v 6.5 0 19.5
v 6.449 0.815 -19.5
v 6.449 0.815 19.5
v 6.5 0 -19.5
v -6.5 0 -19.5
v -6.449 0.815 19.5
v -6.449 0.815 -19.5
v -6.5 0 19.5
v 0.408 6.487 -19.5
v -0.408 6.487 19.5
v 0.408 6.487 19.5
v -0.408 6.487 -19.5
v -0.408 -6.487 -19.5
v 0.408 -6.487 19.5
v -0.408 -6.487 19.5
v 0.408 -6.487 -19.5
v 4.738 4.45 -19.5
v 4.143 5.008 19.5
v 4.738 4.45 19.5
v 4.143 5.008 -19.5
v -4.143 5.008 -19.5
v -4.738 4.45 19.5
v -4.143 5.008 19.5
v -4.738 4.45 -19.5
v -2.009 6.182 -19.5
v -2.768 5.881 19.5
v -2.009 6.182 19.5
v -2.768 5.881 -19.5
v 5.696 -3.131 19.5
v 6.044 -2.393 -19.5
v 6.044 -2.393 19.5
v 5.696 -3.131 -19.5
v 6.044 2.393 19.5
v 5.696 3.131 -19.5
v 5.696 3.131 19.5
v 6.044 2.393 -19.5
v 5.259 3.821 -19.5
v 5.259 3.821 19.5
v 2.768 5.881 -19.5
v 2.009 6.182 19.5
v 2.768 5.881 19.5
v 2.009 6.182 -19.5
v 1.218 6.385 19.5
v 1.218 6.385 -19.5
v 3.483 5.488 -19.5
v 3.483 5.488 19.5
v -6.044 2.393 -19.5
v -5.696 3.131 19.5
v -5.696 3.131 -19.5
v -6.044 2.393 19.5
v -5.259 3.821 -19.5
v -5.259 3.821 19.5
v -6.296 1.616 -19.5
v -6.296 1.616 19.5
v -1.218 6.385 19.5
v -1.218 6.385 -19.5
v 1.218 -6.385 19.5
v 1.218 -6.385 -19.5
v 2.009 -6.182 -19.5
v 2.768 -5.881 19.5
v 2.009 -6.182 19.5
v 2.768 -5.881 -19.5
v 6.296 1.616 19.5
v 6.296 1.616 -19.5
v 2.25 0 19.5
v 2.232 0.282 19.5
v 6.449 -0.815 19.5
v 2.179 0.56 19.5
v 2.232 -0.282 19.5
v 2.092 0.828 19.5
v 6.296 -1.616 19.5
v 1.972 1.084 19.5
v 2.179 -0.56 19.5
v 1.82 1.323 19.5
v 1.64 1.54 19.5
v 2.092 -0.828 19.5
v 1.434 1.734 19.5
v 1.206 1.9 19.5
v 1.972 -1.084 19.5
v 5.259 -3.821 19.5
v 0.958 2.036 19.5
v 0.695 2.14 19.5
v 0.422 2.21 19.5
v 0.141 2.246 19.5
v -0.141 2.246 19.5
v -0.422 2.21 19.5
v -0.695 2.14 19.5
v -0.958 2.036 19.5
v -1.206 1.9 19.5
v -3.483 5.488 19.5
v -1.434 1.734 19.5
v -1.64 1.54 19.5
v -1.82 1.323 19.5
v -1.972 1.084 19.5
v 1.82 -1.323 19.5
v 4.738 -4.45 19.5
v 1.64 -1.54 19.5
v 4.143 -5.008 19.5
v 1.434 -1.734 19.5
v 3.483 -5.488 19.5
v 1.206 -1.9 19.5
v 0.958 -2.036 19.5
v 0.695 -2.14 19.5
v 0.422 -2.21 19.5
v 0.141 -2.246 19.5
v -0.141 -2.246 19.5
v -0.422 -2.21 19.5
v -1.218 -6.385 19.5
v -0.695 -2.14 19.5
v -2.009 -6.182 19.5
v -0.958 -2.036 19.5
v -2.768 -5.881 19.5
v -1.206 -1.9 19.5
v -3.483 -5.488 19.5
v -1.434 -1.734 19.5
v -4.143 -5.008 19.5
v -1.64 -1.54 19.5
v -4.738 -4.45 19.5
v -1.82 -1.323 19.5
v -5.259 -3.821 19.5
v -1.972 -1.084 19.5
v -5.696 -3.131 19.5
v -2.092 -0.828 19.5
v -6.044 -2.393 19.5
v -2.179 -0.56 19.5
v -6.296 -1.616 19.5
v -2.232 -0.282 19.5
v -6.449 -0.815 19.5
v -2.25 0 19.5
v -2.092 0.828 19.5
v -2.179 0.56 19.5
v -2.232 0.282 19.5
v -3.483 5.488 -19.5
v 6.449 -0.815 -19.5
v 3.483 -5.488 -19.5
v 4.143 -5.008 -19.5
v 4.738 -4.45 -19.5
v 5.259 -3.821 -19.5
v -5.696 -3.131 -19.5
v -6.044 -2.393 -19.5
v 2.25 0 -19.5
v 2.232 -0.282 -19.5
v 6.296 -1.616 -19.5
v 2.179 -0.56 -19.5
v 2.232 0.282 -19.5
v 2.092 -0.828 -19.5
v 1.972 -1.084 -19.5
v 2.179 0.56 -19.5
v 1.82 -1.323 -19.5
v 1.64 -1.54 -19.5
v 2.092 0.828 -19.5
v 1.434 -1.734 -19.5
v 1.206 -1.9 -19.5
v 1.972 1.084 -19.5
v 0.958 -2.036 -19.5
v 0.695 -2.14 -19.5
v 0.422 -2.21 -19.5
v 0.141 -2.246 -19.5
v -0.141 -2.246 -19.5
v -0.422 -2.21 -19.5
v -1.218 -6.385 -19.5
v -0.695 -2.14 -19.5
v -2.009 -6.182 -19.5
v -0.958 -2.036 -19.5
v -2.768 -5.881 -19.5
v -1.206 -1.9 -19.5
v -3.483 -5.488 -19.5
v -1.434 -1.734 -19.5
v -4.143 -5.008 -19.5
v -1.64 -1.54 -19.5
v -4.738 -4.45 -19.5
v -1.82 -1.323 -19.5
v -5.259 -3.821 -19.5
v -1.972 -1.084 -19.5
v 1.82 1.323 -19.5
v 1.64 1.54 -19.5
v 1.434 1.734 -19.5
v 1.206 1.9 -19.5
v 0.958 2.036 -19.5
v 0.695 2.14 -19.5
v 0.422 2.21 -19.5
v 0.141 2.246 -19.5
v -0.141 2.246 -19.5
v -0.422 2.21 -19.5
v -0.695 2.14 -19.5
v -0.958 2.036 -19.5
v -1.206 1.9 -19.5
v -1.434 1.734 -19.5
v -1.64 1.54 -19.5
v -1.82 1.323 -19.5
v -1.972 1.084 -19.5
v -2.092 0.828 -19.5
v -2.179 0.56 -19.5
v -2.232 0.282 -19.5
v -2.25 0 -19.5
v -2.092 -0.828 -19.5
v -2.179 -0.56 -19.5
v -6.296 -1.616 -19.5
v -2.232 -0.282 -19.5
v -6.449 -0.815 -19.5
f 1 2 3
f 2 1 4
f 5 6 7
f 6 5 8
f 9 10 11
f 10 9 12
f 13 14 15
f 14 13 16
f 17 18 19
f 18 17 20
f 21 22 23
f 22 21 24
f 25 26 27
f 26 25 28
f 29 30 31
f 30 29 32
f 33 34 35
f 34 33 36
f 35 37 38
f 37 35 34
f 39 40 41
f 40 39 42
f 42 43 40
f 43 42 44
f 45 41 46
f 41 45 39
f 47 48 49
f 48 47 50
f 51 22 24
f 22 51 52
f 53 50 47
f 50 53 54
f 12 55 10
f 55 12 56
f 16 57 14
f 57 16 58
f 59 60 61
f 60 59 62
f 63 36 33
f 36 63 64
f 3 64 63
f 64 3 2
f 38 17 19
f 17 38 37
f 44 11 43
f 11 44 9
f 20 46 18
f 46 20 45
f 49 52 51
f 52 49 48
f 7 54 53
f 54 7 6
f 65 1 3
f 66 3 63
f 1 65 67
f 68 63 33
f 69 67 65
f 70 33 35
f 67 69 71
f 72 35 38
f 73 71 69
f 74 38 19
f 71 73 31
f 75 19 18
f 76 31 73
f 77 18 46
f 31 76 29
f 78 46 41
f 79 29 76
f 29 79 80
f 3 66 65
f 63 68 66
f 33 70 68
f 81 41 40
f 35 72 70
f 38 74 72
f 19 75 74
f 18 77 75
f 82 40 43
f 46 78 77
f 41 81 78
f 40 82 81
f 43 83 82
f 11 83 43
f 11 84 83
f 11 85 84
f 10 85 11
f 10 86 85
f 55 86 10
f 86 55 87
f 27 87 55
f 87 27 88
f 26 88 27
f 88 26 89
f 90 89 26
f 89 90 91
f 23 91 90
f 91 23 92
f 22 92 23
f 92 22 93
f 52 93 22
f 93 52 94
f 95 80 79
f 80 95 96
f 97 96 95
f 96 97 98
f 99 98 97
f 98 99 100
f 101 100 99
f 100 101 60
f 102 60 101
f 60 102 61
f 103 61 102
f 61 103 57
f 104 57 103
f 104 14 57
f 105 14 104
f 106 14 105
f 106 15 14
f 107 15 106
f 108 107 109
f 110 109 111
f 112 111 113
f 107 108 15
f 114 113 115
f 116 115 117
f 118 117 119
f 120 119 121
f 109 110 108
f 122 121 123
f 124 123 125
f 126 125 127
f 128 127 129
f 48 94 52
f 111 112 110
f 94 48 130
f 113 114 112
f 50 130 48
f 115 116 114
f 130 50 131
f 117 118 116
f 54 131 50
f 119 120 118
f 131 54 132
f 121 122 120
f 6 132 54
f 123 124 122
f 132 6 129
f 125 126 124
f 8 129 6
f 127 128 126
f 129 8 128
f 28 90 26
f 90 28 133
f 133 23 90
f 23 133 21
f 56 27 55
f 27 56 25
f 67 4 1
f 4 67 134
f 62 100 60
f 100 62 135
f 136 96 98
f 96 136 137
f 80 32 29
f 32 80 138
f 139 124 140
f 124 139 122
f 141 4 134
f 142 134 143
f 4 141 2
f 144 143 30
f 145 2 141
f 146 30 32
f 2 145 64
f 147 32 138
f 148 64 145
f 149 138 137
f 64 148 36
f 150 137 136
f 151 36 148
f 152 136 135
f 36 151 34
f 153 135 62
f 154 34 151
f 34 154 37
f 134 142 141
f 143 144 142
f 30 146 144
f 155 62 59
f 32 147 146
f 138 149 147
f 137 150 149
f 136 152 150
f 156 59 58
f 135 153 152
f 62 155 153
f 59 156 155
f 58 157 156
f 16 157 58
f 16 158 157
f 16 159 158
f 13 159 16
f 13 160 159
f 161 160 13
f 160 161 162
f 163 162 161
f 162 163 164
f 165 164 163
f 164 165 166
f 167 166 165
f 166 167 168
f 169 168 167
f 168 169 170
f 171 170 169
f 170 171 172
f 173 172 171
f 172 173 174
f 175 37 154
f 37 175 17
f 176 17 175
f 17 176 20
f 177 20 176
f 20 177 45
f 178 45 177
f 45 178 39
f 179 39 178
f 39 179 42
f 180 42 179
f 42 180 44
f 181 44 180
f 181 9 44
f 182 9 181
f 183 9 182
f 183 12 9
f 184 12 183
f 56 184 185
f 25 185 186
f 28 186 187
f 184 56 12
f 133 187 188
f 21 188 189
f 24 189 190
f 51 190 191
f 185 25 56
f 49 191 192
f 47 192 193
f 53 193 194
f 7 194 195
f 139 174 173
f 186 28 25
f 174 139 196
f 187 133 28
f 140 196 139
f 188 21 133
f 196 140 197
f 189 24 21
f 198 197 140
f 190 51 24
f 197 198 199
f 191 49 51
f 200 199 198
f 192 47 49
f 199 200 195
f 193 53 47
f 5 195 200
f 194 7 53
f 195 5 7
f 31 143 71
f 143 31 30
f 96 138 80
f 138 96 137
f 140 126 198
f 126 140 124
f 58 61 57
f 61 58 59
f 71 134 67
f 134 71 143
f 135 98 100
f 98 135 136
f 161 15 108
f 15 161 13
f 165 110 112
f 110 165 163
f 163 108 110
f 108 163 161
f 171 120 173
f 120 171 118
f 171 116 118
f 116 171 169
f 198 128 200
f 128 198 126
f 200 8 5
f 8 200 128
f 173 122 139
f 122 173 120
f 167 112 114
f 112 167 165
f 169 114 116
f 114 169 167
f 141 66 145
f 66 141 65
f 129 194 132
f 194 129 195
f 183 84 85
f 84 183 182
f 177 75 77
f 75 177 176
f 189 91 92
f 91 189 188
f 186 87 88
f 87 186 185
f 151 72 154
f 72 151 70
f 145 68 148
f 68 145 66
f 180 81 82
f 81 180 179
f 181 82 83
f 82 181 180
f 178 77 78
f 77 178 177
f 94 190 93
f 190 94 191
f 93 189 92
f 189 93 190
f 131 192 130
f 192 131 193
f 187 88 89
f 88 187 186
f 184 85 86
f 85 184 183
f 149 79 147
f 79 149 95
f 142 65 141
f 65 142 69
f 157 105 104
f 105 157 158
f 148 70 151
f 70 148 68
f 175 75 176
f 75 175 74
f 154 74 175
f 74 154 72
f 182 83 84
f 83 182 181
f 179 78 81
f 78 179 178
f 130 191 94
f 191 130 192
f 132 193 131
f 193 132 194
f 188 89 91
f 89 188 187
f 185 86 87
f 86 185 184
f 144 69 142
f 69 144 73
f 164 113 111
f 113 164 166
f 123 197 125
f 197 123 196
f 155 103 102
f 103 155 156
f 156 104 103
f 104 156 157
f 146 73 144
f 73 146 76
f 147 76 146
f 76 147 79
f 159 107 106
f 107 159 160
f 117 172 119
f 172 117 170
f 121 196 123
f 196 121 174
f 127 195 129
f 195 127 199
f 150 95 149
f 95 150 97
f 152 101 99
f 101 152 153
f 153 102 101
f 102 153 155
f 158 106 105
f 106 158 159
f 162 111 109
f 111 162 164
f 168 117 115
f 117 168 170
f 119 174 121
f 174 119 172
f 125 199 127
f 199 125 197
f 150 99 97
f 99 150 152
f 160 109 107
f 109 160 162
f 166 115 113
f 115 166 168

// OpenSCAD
$fn = 50;


difference() {
	union() {
		translate(v = [0, 0, -19.5000000000]) {
			cylinder(h = 39, r = 6.5000000000);
		}
	}
	union() {
		translate(v = [0, 0, -100.0000000000]) {
			cylinder(h = 200, r = 2.2500000000);
		}
	}
}
